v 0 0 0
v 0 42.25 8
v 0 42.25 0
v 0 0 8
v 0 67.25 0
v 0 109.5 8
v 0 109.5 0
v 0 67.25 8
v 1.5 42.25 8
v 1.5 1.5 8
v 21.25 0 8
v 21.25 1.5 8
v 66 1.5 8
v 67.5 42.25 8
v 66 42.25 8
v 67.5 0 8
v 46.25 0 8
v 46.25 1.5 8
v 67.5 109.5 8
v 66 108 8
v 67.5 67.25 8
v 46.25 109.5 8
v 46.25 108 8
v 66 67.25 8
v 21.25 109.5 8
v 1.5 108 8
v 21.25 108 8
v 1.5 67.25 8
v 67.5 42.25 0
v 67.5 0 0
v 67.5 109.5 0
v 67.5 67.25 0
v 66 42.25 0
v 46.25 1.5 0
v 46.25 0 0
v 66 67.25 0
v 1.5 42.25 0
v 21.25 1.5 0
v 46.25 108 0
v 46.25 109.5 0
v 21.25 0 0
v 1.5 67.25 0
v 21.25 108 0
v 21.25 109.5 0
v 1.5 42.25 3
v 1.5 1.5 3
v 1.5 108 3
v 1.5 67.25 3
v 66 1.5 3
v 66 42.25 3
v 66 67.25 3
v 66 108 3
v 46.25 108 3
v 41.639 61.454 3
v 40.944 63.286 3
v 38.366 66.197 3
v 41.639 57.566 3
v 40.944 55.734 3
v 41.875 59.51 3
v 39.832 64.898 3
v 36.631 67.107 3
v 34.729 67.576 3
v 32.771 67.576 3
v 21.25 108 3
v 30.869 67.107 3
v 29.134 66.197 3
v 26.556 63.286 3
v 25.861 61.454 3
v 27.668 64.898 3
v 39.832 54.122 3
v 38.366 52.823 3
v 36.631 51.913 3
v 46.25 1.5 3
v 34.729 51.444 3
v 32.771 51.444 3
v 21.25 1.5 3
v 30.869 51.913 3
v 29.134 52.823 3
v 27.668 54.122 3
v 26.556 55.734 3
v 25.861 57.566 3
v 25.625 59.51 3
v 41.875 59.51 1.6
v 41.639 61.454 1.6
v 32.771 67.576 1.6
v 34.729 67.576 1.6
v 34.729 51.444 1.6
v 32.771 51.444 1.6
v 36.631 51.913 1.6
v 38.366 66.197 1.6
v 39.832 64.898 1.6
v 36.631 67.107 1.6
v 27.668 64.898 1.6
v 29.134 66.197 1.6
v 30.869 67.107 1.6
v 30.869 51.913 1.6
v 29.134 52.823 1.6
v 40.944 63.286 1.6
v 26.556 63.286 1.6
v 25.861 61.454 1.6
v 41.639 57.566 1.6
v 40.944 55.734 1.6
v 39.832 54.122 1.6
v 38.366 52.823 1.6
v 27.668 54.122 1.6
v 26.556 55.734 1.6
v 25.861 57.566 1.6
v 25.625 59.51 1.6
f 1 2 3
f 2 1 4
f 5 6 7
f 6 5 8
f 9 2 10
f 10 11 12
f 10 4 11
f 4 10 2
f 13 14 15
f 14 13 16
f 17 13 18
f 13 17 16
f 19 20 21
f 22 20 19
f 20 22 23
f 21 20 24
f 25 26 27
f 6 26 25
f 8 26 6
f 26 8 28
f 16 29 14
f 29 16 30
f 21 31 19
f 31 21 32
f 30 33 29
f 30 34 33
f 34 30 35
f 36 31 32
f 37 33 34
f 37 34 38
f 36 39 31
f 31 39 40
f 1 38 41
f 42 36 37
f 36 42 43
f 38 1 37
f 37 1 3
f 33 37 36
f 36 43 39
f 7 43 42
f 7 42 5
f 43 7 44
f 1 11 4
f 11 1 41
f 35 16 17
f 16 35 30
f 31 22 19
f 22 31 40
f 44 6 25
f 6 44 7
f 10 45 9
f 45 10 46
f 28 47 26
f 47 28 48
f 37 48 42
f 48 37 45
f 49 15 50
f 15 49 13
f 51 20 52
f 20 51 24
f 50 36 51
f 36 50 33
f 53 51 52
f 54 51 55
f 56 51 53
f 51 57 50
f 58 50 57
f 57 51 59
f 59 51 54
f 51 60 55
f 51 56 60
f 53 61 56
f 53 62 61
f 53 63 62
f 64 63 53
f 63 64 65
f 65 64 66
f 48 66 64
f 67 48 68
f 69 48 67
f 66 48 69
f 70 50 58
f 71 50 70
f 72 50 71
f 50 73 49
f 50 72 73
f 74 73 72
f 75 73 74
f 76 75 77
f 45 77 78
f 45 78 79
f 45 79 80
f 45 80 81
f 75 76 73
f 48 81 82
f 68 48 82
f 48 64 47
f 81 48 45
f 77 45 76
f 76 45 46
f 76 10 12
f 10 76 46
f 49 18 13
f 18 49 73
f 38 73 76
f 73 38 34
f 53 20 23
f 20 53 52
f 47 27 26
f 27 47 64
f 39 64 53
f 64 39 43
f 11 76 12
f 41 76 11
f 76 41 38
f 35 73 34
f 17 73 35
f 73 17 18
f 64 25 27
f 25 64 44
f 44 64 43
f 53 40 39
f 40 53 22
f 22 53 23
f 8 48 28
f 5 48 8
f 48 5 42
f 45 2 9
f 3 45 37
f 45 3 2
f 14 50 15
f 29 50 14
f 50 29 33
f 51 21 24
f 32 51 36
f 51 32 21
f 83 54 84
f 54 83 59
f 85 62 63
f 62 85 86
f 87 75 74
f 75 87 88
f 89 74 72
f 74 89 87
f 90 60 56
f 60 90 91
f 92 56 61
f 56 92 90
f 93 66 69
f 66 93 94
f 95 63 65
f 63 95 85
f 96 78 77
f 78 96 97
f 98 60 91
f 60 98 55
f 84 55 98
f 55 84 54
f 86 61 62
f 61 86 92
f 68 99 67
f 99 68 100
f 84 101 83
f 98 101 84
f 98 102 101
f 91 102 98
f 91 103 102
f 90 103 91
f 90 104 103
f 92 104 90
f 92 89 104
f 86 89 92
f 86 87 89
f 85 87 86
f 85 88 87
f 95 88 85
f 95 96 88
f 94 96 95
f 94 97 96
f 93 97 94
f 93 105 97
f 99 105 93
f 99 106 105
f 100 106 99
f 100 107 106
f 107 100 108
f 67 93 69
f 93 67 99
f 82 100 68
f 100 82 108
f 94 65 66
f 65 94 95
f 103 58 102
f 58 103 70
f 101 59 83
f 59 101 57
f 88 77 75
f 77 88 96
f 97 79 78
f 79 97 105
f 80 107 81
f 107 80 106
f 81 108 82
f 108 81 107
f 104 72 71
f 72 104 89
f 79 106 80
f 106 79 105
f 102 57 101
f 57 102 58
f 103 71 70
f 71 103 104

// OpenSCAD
length = 63;
width = 105;

height = 3;
rimHeight = 5;
rimThickness = 1.5;
notchLength = 25;
//Based on washer size:
washerDiameter = 16.25;
washerHeight = 1.4;
rimPadding = 1.5;
totalHeight = height + rimHeight;

totalLength = length + rimThickness * 2 + rimPadding;
totalWidth = width + rimThickness * 2 + rimPadding;

magnetOffset = 43.01;
pillarSideLength = 18;

magnetBaseInnerDiameter = 15.4;
spaceBetweenCircles = 2;
wallThickness = spaceBetweenCircles;
pillarSideOffset = .5;

difference() {
    cube([totalLength, totalWidth, height + rimHeight]);
    translate([rimThickness, rimThickness, height])
        cube([length + rimPadding, width + rimPadding, rimHeight]);
    
    translate([totalLength/2 - notchLength/2, 0, 0])
        cube([notchLength, rimThickness, totalHeight]);
    translate([totalLength/2 - notchLength/2, totalWidth-rimThickness, 0])
        cube([notchLength, rimThickness, totalHeight]);


    translate([0, totalWidth/2 - notchLength/2, 0])
        cube([rimThickness, notchLength, totalHeight]);
    translate([totalLength-rimThickness, totalWidth/2 - notchLength/2, 0])
        cube([rimThickness, notchLength, totalHeight]);
    
    translate([totalLength/2, magnetOffset + wallThickness * 2 + magnetBaseInnerDiameter/2 + (pillarSideLength -magnetBaseInnerDiameter )/2 + rimThickness + rimPadding + pillarSideOffset, height - washerHeight])
        cylinder(washerHeight, d=washerDiameter);
}
